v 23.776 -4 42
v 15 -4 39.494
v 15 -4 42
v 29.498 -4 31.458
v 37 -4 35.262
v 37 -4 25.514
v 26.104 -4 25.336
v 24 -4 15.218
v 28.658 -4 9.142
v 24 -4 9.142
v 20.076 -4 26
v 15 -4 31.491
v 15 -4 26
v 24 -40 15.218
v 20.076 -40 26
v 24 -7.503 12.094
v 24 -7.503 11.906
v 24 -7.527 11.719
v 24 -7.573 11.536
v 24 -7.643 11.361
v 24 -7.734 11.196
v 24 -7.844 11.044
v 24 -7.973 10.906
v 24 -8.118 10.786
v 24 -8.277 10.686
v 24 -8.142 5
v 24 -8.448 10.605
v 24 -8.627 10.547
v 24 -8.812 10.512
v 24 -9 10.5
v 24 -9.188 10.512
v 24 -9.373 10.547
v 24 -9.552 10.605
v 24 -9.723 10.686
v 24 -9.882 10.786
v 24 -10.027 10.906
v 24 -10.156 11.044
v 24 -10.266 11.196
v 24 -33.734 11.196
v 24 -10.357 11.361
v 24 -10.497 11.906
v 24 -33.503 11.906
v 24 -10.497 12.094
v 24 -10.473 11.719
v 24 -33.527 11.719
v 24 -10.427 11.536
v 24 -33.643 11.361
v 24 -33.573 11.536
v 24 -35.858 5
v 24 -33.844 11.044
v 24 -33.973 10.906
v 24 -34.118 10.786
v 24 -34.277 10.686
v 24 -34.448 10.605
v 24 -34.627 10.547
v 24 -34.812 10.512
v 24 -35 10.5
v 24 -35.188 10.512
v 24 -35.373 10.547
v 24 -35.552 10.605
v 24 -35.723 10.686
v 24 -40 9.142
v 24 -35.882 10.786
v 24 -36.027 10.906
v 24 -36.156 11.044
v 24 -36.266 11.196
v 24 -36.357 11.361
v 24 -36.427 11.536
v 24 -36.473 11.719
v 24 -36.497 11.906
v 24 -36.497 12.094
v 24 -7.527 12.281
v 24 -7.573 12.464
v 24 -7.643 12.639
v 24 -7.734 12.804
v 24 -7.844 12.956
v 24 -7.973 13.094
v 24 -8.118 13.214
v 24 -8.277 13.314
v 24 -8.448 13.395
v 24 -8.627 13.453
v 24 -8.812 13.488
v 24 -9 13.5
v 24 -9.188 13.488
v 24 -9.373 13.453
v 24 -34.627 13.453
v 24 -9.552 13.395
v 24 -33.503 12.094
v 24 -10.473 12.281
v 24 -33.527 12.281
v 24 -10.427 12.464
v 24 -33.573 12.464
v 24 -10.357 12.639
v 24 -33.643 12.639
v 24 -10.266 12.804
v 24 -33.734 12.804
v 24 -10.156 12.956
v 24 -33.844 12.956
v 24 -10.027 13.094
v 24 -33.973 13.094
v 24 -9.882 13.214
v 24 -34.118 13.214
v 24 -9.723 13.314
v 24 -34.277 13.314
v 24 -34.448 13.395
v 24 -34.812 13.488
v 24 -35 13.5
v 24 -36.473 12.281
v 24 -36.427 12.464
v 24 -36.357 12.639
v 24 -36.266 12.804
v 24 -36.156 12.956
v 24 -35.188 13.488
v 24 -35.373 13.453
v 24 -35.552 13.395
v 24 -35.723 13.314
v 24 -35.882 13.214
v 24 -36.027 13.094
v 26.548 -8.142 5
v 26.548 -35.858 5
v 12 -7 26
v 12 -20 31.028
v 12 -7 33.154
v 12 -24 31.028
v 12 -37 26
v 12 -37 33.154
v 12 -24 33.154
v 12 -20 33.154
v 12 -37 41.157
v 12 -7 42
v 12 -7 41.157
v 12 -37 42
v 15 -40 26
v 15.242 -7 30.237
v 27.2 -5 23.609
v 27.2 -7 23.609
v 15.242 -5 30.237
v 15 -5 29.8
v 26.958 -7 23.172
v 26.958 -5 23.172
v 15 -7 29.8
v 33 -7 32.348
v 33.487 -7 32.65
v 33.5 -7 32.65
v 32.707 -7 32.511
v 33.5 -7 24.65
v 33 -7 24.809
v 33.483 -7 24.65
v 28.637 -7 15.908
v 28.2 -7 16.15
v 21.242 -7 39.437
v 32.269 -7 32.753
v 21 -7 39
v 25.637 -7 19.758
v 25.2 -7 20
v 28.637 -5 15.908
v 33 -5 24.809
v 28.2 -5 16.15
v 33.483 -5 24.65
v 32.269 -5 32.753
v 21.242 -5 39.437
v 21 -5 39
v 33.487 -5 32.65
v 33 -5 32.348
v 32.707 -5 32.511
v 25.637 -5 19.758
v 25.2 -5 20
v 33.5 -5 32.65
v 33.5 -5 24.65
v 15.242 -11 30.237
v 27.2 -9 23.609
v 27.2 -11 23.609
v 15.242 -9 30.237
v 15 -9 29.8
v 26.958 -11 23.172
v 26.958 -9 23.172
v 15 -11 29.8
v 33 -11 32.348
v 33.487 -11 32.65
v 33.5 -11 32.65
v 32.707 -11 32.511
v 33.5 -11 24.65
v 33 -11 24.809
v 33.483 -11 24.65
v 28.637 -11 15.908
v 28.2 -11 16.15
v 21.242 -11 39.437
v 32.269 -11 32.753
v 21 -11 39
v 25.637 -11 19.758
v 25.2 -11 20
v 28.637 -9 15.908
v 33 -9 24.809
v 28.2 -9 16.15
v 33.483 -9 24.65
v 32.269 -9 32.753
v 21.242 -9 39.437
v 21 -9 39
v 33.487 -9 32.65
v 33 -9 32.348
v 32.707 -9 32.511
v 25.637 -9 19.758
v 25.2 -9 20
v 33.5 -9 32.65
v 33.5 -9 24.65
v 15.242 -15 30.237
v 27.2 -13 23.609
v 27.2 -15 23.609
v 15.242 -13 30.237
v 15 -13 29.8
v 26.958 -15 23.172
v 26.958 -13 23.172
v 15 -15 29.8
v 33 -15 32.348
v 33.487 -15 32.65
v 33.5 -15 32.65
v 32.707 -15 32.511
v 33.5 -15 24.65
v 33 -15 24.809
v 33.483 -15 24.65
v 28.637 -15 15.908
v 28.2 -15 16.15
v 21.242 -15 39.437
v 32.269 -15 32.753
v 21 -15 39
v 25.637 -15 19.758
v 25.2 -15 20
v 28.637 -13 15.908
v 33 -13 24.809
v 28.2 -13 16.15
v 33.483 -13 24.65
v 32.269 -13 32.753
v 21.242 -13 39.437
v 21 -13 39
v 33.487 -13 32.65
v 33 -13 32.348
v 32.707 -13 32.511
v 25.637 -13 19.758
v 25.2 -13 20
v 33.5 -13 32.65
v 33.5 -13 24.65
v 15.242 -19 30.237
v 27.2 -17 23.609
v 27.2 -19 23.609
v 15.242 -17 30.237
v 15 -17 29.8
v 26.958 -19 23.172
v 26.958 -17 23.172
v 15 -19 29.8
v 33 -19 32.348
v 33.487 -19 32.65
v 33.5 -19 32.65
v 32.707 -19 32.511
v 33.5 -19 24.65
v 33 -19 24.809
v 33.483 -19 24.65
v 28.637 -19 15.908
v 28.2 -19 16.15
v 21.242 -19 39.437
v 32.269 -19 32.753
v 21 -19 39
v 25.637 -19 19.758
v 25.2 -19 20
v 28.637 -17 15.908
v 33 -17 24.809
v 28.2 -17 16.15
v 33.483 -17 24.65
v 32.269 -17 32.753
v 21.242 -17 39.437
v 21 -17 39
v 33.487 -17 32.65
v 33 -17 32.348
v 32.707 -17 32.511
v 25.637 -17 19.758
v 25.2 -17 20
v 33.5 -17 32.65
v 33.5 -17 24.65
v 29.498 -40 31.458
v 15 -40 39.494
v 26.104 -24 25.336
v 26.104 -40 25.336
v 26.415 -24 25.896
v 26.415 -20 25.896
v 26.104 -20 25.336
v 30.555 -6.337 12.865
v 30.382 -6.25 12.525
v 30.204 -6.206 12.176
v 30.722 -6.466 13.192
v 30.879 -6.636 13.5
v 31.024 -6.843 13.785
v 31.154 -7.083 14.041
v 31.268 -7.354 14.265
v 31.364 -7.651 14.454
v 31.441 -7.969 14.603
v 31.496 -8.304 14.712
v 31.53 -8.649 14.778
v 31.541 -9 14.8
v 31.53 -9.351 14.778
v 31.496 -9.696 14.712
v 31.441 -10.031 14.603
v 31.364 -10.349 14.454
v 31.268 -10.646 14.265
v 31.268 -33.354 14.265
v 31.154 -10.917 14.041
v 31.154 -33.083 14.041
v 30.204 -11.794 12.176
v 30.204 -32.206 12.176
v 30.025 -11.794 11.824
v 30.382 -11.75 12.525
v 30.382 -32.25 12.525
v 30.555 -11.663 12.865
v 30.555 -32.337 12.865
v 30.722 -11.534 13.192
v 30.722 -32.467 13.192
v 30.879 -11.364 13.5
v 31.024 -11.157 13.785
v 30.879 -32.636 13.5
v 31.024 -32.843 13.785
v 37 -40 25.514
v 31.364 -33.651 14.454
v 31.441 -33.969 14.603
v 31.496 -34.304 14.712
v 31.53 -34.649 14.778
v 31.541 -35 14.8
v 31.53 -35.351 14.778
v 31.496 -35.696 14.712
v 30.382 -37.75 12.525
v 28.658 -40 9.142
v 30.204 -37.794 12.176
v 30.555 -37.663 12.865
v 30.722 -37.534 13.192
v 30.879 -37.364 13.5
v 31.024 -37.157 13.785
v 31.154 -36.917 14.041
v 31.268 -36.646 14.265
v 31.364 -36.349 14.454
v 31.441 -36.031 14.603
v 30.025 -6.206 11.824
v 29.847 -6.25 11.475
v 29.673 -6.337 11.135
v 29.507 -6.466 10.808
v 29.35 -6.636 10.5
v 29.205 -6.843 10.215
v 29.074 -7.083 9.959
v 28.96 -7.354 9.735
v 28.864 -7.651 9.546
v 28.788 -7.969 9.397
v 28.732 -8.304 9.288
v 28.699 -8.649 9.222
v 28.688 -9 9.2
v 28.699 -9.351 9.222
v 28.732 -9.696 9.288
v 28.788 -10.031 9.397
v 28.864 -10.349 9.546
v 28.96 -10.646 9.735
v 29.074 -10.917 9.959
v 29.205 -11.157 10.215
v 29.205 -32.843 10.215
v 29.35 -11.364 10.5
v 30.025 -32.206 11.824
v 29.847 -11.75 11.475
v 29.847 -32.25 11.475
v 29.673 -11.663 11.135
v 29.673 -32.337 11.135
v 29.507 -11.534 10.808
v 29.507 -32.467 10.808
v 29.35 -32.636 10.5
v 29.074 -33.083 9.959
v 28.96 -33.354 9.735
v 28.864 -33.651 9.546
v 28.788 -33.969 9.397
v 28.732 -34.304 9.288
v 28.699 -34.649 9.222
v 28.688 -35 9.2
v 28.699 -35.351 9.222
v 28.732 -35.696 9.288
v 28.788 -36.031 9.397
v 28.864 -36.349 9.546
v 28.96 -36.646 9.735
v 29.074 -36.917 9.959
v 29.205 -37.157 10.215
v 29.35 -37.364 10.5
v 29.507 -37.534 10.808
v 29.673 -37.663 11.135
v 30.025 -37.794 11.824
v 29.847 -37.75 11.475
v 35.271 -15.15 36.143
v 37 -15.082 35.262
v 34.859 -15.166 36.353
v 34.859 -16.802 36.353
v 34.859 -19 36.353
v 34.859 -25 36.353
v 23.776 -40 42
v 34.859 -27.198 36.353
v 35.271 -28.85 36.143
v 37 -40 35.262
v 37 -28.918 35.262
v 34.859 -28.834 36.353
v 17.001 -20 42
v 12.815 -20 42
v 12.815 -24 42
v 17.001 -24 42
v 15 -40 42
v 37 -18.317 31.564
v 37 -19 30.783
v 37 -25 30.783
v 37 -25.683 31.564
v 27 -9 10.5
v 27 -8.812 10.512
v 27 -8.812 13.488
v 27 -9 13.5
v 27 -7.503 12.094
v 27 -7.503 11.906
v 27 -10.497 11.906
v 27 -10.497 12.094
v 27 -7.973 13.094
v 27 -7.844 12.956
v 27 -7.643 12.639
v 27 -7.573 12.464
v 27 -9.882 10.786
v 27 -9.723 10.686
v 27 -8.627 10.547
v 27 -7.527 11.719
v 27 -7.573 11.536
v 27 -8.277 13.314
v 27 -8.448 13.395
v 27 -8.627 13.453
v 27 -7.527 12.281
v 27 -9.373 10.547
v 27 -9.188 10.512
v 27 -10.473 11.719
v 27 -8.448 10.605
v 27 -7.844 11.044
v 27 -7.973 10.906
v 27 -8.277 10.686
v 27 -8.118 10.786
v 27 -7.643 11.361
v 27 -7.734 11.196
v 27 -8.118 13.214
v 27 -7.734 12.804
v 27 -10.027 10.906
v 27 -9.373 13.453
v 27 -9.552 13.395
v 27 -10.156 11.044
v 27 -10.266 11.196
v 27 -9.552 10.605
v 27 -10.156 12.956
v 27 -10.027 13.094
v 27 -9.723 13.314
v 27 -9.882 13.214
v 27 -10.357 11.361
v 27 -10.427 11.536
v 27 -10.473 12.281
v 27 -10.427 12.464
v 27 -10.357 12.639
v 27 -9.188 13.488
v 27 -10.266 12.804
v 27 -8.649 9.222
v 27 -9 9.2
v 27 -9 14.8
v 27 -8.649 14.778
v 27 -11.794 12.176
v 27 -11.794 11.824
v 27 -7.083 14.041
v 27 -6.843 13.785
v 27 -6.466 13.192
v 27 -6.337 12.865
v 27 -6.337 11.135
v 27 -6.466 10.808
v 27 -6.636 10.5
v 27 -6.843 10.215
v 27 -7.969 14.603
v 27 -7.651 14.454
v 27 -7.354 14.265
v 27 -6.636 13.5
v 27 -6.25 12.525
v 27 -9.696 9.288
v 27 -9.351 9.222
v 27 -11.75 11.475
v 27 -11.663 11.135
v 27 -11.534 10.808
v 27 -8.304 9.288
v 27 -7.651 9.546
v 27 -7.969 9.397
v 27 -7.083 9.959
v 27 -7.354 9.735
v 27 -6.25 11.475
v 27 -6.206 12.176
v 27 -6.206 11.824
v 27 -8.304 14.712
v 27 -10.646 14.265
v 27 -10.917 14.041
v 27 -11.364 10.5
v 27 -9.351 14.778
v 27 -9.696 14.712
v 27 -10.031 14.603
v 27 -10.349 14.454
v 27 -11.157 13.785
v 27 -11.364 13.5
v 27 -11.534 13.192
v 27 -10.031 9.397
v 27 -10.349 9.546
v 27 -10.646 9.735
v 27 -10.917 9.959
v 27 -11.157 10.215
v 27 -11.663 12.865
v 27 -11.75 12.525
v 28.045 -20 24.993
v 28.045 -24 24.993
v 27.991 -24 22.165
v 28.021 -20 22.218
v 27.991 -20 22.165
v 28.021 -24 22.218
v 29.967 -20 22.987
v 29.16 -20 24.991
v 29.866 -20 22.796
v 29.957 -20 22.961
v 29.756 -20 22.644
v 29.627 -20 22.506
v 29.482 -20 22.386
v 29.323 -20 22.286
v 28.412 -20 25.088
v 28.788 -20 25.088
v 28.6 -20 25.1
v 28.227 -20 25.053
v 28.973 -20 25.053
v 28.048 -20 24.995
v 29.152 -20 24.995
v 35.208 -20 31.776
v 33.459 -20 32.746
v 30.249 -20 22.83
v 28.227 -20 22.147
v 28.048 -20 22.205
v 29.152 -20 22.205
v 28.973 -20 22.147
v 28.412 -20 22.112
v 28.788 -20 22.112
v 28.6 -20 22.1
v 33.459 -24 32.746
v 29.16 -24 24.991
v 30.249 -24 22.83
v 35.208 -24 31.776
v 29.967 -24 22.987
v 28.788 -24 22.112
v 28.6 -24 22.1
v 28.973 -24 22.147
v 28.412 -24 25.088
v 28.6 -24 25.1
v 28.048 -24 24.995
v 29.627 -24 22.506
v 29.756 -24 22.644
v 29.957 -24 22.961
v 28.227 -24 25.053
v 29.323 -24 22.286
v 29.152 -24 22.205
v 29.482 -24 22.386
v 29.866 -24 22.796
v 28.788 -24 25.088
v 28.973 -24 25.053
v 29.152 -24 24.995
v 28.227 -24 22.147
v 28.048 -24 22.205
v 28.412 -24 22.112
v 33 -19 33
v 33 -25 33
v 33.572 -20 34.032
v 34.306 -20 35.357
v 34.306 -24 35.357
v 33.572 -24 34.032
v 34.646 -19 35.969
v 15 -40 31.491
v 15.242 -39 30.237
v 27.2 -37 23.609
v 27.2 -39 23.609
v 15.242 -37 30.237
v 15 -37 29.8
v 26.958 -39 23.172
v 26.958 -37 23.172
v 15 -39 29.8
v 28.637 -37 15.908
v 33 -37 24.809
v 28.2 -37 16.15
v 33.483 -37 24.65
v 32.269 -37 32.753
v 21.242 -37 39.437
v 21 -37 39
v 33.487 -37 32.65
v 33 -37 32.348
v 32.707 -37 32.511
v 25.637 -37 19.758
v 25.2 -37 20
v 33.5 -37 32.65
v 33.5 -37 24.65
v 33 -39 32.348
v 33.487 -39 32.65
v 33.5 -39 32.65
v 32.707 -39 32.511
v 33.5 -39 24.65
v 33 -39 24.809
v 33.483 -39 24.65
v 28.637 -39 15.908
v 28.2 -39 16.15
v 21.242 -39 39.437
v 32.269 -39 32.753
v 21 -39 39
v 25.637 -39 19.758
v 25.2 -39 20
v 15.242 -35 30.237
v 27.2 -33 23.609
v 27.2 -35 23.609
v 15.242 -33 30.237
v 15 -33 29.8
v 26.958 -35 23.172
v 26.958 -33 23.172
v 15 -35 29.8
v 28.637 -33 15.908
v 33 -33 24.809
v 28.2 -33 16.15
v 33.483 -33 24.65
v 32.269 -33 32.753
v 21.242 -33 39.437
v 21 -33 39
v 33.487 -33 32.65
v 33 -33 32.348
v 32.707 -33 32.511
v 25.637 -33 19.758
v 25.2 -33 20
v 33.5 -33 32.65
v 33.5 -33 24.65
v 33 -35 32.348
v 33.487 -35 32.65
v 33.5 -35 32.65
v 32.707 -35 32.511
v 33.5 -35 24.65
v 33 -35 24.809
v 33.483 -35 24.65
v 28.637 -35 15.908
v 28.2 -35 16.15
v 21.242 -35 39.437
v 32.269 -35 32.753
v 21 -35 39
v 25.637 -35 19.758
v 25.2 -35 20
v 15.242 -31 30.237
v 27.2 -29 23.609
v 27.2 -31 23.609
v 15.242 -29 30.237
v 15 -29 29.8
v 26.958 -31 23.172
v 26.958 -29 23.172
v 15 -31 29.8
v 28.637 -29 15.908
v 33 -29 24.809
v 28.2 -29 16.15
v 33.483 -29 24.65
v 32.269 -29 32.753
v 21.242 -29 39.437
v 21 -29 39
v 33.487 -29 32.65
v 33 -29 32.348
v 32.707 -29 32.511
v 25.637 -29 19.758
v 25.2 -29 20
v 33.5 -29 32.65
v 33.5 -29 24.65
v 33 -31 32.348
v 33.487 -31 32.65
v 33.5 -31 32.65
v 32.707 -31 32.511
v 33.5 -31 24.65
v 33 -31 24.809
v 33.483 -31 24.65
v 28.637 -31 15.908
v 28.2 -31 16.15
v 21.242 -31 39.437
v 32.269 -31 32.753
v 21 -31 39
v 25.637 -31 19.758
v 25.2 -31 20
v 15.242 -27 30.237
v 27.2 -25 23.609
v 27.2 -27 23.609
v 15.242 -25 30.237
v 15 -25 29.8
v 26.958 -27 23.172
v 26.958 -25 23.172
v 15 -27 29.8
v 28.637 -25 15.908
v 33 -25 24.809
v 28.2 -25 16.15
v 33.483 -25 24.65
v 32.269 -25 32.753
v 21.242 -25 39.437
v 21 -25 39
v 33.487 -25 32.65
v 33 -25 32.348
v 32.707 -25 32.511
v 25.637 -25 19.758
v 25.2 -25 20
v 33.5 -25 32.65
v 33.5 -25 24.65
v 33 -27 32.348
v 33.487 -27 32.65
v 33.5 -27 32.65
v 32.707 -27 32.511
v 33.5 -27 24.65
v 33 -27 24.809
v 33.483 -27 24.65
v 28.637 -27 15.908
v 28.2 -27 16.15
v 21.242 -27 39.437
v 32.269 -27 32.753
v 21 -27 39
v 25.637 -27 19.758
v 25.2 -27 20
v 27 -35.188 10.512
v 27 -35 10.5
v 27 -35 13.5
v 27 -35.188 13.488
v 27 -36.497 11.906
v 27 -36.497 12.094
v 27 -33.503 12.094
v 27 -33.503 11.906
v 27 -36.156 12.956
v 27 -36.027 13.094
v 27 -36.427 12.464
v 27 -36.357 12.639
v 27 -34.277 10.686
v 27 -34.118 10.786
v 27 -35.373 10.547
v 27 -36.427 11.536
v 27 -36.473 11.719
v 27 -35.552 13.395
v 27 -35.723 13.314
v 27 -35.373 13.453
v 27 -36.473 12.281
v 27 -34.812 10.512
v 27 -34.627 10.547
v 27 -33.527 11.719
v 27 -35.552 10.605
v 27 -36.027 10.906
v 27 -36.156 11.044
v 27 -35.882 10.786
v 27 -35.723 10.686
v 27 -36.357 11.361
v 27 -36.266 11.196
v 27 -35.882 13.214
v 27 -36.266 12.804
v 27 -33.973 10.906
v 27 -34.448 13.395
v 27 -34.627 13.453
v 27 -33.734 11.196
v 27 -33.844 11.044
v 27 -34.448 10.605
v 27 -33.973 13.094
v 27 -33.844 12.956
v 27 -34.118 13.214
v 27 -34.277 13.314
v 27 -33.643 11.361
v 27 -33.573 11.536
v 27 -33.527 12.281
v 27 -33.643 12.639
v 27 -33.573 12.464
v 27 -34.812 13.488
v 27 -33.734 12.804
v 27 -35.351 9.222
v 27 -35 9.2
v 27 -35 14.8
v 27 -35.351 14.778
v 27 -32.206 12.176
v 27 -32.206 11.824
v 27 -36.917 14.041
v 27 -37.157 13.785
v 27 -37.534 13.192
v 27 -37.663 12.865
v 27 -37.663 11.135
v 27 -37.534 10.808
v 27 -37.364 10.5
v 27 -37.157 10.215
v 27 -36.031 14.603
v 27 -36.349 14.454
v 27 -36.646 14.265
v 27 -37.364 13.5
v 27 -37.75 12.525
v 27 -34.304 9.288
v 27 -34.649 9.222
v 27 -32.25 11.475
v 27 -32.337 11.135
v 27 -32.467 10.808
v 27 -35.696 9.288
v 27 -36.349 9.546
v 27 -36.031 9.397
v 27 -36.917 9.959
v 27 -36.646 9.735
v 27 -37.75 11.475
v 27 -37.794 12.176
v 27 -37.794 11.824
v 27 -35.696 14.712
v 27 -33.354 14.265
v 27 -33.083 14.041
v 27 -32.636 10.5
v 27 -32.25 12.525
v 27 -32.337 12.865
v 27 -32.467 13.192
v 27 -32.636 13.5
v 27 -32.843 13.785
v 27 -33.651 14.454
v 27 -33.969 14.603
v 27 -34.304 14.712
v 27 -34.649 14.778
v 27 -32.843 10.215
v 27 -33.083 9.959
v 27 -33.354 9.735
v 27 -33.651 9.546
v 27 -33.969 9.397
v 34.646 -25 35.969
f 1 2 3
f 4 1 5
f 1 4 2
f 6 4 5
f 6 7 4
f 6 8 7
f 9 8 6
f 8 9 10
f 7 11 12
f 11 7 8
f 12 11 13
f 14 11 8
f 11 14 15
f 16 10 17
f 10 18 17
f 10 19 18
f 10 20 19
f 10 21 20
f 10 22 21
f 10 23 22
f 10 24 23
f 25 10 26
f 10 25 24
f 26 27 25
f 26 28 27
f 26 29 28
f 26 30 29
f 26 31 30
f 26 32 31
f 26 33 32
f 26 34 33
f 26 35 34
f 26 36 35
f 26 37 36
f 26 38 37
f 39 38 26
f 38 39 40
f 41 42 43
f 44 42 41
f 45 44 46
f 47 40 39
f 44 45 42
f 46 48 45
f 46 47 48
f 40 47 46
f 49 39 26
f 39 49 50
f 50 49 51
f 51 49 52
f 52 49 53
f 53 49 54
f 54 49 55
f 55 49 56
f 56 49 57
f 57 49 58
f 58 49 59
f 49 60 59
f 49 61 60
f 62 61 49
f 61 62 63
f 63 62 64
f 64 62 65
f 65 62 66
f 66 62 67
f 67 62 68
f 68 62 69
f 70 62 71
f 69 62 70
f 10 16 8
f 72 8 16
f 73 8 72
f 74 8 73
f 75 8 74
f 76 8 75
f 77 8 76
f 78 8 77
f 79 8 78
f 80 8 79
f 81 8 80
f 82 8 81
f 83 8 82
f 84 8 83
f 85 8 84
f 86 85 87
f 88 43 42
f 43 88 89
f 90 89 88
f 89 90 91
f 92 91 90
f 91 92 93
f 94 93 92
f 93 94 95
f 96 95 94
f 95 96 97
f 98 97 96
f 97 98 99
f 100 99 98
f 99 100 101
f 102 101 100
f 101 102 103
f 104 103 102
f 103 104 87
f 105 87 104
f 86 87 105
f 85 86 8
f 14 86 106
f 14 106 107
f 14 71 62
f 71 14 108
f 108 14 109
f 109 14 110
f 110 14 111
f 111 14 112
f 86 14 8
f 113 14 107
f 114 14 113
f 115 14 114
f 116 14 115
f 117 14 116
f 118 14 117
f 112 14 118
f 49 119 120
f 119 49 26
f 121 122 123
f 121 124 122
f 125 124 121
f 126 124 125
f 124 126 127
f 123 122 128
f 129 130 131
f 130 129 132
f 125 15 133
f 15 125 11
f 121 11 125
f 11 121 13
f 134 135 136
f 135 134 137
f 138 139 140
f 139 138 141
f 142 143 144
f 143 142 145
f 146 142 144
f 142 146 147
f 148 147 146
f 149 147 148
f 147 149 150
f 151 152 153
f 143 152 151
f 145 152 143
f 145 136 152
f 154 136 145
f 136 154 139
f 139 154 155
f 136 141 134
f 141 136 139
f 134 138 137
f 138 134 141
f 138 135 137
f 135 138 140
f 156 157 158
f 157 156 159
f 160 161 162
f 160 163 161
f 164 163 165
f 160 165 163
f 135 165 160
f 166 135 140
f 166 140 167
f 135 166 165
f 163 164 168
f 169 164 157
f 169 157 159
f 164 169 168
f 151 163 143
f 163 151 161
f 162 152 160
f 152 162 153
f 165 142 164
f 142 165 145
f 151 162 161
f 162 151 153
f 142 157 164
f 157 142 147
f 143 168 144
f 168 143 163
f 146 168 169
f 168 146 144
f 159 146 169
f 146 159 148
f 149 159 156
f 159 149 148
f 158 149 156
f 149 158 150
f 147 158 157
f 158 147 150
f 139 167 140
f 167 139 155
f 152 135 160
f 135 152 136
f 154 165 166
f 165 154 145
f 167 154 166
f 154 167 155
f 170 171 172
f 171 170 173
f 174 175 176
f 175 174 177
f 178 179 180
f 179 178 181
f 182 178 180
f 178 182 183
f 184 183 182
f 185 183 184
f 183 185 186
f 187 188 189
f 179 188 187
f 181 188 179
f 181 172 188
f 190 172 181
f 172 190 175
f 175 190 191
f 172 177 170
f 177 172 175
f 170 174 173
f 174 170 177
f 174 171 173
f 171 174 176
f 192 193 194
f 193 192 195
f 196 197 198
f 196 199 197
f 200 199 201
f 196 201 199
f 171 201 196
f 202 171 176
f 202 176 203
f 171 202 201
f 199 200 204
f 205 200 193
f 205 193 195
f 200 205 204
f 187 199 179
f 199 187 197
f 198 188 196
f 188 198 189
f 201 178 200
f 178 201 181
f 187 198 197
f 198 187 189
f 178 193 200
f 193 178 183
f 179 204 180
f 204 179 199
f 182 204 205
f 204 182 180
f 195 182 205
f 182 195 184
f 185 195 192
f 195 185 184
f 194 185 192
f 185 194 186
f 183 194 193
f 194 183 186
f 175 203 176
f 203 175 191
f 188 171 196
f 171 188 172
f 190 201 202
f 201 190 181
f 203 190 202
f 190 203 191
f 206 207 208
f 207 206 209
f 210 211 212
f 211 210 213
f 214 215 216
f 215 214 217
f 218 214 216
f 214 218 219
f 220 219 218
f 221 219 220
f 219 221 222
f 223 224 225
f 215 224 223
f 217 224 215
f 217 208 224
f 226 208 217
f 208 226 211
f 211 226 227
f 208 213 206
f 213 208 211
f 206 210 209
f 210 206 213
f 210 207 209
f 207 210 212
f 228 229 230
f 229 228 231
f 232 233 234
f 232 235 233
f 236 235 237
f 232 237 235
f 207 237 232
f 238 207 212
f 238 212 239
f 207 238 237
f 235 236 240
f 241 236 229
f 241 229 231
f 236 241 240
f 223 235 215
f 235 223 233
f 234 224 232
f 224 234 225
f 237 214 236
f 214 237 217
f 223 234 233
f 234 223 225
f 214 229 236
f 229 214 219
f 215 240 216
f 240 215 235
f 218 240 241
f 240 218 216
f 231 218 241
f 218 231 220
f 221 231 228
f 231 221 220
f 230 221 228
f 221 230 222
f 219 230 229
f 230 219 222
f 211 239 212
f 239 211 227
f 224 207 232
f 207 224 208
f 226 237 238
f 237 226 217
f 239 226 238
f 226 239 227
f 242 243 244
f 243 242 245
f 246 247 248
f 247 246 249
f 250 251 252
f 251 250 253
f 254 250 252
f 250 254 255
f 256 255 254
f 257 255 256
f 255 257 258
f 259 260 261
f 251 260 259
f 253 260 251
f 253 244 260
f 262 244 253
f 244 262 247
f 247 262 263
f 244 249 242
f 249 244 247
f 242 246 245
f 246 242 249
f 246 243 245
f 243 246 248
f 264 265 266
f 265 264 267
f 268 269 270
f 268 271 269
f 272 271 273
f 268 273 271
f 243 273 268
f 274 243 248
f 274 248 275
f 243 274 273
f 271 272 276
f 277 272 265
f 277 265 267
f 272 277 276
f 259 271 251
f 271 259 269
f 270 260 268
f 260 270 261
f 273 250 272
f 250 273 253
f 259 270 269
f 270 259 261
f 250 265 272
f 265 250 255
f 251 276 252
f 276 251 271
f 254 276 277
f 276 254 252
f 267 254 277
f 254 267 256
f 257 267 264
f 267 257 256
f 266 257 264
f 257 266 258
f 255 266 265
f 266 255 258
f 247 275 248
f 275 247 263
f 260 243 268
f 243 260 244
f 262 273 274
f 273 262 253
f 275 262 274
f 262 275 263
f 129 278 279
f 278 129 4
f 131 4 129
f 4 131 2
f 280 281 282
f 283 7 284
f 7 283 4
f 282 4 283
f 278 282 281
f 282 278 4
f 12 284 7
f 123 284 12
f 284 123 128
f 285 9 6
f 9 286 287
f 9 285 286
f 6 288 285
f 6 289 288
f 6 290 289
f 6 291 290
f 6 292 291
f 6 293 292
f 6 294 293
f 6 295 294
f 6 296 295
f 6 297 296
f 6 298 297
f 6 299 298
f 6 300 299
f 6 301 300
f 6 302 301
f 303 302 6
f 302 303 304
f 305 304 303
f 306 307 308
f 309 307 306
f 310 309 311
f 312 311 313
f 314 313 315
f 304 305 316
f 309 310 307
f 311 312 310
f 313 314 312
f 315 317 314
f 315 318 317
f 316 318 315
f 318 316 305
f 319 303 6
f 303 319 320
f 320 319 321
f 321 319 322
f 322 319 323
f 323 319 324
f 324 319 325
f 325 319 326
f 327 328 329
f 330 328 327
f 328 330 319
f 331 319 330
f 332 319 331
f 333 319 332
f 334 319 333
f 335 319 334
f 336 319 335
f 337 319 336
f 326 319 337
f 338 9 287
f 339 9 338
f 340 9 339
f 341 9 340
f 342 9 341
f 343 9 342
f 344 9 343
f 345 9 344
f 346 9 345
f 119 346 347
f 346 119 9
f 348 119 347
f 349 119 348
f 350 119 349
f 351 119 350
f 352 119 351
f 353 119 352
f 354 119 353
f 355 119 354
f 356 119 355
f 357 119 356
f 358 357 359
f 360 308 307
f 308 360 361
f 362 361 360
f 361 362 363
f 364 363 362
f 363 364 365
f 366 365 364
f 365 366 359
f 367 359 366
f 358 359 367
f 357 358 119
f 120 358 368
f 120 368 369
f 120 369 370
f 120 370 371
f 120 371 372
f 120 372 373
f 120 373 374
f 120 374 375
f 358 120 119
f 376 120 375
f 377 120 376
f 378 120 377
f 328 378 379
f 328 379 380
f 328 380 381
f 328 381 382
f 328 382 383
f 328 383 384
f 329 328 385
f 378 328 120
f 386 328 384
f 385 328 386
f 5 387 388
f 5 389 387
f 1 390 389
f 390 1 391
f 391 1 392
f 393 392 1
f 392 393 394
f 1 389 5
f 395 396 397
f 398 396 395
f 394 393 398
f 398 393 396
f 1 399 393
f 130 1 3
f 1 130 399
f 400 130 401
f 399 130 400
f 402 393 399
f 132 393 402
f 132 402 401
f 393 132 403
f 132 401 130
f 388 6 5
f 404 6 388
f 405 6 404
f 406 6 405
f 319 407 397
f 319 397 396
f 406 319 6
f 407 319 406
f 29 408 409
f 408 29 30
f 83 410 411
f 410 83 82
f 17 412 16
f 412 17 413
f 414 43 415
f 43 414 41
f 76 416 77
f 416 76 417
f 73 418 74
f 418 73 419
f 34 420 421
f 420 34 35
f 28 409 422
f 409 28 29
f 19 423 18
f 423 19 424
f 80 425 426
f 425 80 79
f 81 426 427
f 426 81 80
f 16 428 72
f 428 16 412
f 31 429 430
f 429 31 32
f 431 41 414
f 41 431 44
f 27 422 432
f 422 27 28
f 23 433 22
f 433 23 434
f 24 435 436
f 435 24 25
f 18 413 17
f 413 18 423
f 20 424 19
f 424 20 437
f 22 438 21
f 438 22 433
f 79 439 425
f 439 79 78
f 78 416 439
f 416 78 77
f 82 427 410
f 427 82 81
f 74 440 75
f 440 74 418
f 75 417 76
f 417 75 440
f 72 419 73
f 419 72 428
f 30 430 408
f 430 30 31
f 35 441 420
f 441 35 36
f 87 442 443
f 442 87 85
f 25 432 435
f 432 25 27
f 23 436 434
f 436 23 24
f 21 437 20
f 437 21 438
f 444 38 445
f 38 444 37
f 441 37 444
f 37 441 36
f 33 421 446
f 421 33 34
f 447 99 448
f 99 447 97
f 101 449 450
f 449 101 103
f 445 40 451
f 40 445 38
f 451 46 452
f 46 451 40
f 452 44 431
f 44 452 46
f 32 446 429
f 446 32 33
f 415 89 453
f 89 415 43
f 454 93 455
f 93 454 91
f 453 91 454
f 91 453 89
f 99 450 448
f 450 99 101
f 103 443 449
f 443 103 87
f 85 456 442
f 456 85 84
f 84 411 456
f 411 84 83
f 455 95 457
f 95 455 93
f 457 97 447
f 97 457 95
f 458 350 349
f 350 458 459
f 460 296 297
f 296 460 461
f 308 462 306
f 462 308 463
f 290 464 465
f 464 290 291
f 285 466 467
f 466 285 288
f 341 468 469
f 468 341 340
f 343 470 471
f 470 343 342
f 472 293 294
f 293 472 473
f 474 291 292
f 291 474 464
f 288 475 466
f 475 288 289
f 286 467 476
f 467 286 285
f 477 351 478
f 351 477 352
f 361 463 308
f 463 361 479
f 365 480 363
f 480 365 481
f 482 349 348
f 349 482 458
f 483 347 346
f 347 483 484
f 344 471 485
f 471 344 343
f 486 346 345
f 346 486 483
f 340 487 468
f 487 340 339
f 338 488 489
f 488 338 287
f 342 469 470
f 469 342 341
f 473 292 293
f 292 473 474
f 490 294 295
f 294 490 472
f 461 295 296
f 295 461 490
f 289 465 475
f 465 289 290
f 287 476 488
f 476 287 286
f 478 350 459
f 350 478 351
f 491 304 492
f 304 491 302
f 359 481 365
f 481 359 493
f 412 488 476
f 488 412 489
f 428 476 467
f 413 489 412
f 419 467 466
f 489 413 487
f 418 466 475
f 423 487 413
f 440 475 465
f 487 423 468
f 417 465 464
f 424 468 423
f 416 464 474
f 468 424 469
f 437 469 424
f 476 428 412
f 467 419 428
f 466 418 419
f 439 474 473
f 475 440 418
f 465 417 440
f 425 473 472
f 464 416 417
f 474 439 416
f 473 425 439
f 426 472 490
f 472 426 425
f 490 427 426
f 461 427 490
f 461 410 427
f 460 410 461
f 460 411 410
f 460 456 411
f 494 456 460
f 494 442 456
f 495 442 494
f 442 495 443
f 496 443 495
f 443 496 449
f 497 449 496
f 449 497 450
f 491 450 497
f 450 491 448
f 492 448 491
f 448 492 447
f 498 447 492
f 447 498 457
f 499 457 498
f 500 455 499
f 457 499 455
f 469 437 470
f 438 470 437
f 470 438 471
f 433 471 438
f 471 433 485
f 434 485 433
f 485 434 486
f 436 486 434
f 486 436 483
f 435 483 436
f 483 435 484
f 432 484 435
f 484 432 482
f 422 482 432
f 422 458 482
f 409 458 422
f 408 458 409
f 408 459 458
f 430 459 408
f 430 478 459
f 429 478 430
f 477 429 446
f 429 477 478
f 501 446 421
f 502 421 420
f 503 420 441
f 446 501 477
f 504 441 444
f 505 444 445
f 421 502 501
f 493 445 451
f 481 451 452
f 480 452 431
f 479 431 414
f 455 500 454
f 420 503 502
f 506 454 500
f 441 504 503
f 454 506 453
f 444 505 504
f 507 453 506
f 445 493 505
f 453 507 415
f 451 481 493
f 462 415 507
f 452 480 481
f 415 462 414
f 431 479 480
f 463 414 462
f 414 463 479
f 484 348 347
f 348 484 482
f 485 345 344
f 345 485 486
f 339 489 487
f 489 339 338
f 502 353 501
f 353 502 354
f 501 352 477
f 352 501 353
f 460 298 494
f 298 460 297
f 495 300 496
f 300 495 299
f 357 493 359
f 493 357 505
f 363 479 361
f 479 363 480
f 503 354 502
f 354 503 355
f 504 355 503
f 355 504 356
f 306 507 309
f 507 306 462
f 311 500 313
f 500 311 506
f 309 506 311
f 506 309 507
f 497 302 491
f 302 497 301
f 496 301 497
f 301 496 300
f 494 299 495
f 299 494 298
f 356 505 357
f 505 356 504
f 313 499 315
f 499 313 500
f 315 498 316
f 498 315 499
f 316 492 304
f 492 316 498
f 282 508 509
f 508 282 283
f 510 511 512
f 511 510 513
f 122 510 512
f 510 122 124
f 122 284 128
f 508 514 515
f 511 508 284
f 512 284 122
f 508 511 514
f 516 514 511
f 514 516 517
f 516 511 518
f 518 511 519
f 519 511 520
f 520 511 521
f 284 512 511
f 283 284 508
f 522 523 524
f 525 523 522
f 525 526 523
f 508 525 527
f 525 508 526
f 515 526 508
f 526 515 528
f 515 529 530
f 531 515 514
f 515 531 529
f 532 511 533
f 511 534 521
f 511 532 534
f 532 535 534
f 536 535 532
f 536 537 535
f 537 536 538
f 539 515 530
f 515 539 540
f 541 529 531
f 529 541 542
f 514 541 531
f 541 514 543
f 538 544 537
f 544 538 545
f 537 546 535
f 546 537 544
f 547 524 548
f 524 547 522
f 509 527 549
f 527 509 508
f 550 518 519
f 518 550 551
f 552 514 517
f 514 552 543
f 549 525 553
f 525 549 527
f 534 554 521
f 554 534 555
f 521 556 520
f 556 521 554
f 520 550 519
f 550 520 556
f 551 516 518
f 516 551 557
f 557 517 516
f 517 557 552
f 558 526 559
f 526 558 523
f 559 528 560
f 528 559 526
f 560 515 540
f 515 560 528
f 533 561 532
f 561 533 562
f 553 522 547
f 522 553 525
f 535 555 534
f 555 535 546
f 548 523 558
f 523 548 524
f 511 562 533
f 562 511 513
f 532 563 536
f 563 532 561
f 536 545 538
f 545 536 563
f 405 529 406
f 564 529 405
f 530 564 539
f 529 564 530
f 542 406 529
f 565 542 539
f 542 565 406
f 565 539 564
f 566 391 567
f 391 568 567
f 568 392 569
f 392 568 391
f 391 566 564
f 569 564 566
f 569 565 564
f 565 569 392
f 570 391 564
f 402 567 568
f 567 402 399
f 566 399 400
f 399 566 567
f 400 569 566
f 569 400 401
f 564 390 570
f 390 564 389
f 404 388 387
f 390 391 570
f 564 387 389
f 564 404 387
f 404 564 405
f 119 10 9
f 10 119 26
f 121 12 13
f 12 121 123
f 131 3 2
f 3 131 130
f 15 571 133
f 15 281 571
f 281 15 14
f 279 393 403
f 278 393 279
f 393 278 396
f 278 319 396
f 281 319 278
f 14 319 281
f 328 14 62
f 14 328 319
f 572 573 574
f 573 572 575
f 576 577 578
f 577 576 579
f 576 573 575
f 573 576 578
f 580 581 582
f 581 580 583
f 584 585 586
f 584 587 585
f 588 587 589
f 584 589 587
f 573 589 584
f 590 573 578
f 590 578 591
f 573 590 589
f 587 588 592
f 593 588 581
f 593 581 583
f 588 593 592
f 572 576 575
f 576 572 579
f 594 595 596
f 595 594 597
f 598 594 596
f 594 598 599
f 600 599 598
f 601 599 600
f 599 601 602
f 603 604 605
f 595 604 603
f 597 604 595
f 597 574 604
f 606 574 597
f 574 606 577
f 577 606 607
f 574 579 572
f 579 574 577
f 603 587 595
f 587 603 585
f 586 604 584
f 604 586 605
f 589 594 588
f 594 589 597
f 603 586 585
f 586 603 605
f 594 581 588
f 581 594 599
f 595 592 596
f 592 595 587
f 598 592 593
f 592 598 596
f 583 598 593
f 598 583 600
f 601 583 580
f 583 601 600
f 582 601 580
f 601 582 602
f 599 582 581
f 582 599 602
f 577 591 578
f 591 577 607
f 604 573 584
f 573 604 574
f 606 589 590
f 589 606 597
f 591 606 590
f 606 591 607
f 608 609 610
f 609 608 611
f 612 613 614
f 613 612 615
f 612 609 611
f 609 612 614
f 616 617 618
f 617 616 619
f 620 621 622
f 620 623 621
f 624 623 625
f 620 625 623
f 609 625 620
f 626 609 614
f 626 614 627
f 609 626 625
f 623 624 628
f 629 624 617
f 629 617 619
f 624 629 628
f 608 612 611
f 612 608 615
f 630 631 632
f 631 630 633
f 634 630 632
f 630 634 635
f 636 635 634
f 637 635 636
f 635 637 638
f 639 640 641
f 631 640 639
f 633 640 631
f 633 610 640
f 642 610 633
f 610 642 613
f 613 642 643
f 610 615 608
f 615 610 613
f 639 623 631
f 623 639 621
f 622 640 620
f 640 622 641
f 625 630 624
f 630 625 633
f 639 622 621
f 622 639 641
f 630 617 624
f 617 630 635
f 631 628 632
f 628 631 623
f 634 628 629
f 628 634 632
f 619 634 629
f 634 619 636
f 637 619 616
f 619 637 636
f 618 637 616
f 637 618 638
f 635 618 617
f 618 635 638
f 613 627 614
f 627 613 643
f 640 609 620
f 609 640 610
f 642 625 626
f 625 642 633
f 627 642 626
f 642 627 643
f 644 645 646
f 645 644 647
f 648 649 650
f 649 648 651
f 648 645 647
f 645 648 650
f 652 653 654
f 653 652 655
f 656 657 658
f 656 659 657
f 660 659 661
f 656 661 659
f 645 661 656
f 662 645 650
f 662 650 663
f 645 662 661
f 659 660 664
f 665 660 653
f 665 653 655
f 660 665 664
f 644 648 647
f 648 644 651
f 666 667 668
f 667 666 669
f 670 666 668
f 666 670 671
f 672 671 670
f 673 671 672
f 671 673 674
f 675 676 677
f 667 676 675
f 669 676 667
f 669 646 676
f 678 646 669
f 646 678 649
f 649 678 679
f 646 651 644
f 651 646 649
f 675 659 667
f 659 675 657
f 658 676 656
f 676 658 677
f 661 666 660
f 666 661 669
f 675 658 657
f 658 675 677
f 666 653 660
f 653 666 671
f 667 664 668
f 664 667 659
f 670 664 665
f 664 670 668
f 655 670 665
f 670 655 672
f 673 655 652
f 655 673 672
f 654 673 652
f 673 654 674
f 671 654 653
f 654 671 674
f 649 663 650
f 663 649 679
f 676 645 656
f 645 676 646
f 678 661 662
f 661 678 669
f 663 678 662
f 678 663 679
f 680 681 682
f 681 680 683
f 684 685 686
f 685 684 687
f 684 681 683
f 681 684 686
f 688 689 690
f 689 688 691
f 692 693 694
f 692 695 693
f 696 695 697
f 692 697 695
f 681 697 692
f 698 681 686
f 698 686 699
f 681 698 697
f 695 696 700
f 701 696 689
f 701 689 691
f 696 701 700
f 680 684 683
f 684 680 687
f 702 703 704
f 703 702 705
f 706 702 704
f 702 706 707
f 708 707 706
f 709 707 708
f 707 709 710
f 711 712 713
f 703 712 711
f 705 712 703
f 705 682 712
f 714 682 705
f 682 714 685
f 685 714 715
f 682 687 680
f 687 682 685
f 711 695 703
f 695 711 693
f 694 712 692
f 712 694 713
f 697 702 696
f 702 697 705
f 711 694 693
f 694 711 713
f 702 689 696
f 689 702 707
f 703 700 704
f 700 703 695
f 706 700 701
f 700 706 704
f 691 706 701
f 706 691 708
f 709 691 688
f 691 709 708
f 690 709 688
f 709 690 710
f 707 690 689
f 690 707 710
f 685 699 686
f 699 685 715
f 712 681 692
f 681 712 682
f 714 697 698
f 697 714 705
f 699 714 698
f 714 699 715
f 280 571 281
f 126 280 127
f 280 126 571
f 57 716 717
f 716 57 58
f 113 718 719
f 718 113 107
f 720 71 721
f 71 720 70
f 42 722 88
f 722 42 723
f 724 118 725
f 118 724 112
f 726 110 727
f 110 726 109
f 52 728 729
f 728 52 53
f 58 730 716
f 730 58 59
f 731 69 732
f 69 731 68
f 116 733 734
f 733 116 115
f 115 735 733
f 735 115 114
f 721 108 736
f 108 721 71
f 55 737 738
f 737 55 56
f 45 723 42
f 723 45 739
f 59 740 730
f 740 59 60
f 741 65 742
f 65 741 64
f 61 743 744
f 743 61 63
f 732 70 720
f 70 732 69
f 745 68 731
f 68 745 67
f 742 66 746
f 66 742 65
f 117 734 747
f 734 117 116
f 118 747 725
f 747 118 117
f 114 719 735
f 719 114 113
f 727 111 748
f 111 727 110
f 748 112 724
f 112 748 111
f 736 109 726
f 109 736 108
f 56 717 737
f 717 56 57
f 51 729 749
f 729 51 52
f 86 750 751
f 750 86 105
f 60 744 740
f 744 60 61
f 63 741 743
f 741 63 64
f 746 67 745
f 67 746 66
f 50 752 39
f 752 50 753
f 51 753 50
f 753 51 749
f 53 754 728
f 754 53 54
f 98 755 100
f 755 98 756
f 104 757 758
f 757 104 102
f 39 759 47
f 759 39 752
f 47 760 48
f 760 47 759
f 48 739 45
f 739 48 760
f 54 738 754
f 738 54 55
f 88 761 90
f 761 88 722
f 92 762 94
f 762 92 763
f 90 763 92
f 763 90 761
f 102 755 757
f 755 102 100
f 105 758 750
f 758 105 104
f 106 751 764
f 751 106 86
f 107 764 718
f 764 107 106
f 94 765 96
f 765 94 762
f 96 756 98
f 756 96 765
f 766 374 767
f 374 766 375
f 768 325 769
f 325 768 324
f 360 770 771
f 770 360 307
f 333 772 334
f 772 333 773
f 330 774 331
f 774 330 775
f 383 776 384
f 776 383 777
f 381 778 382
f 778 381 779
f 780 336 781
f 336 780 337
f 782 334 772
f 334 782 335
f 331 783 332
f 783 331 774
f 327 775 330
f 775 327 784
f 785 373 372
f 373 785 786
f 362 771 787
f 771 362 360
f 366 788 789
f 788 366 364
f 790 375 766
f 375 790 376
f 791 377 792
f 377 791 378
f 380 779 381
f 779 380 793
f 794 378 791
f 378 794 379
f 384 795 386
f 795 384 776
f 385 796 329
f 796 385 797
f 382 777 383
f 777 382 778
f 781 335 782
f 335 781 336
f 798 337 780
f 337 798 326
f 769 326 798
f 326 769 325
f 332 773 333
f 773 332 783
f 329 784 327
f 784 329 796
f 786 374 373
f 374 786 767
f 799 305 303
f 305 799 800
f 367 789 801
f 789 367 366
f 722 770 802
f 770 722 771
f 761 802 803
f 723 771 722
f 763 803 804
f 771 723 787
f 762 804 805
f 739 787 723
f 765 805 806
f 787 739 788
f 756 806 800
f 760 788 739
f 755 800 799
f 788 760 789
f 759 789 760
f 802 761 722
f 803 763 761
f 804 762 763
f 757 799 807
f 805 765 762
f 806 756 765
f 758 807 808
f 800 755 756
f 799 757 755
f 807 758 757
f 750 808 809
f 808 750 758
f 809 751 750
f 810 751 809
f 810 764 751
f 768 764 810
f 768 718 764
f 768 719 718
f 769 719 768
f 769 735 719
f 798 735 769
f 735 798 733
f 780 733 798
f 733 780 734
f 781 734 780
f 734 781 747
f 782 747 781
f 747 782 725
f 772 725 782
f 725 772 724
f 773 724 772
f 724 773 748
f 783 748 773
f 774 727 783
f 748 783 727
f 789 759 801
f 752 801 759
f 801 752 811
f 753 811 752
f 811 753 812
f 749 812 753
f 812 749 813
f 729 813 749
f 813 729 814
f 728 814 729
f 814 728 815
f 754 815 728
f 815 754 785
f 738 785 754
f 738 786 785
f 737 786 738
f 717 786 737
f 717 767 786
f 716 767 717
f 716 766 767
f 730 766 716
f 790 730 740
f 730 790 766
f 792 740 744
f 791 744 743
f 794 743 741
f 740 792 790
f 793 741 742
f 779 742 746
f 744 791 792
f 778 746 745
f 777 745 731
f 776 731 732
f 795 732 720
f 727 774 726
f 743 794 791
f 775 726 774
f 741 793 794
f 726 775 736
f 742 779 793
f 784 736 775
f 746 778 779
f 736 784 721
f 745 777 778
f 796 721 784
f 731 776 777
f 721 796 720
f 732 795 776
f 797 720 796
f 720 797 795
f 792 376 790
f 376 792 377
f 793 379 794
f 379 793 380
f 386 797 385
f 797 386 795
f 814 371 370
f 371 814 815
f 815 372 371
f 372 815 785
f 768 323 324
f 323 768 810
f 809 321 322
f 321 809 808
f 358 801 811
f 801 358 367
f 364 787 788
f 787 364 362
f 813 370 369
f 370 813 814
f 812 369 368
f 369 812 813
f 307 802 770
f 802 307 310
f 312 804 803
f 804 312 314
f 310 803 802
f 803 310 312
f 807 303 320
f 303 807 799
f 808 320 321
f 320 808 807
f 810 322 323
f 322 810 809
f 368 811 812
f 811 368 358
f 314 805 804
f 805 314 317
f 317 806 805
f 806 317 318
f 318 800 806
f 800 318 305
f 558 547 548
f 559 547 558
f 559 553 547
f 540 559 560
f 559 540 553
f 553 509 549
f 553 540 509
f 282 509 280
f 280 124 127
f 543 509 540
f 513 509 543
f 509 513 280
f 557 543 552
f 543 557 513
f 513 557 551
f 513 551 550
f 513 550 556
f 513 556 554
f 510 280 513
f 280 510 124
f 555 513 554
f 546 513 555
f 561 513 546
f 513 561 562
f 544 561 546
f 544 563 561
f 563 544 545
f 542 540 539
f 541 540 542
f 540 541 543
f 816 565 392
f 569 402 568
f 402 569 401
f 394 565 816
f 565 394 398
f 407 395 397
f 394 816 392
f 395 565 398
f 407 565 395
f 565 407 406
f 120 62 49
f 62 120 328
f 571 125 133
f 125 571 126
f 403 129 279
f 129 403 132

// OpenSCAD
// PRUSA MM upgrade
// e-motor-holder
// GNU GPL v3
// Josef Průša <iam@josefprusa.cz> and contributors
// http://www.reprap.org/wiki/Prusa_Mendel
// http://prusamendel.org

module selinfill()
{
translate( [ 15, 0, 29.8] ) rotate([0,29,0]) cube( [ 14, 2, 0.5] );       

translate( [ 21, 0, 39] ) rotate([0,29,0]) cube( [ 14, 2, 0.5] );       
translate( [ 33, 0, 24.65] ) cube( [ 0.5, 2, 8] );       
translate( [ 28.2, 0, 16.15] ) rotate([0,29,0]) cube( [ 0.5, 2, 10] );       
translate( [ 25.2, 0, 20] ) rotate([0,29,0]) cube( [ 0.5, 2, 15] );  
}



module holder()
{
difference()
{
union()
{
translate( [ 16.8, -22, 35] ) rotate([0,70,0]) cube( [ 30, 18, 14] );       
translate( [ 24, -22, 5] ) cube( [ 17, 18, 35] );       
translate( [ 12, -22, 26] ) cube( [ 30, 18, 24] );       
}
translate( [ -22, -26, 52] ) rotate([0,29,0]) cube( [ 55, 55, 7] );       
translate( [ 24, -28, 0] ) rotate([0,27,0]) cube( [ 15, 55, 40] );       
translate( [ 12, -28, 48] ) rotate([0,27,0]) cube( [ 40, 55, 20] );       
translate( [ 11, -28, 42] ) cube( [ 40, 55, 20] );       
translate( [ 37, -28, 22] ) cube( [ 20, 55, 20] );       

translate([8,-9,12]) rotate([0,90,0]) cylinder( h=25, r=1.5, $fn=50 ); 
translate([27,-9,12]) rotate([0,90,0]) cylinder( h=6, r=2.8, $fn=50 ); 


// ziptie
translate( [ 7, -22, 33.8] ) rotate([0,29,0]) cube( [ 24, 2, 2.5] ); 
translate( [ 28.5, -22, 23.8] ) rotate([0,29,0]) cube( [ 2, 2, 17] ); 
translate([28.6,-20,23.6]) rotate([90,90,0]) cylinder( h=2, r=1.5, $fn=50 ); 
translate( [ 33.0, -22, 33.0] ) rotate([0,29,0]) cube( [ 5, 3, 4] );
translate( [ 5, -22, 45] ) rotate([0,21,0]) cube( [ 50, 2, 1.5] ); 
translate( [ 33.0, -19, 33.0] ) rotate([45,29,0]) cube( [ 5, 6, 4] ); 

translate([0,-7,0]) selinfill();
translate([0,-11,0]) selinfill();
translate([0,-15,0]) selinfill();
translate([0,-19,0]) selinfill();

// edges
translate( [ 20,-2, -3] ) rotate([45,0,0]) cube( [ 20, 10, 10] );       
translate( [ 10,-9, 20] ) rotate([0,0,45]) cube( [ 10, 10, 30] );       

}
}


holder();
translate([0,-44,0]) mirror([0,1,0]) holder();
